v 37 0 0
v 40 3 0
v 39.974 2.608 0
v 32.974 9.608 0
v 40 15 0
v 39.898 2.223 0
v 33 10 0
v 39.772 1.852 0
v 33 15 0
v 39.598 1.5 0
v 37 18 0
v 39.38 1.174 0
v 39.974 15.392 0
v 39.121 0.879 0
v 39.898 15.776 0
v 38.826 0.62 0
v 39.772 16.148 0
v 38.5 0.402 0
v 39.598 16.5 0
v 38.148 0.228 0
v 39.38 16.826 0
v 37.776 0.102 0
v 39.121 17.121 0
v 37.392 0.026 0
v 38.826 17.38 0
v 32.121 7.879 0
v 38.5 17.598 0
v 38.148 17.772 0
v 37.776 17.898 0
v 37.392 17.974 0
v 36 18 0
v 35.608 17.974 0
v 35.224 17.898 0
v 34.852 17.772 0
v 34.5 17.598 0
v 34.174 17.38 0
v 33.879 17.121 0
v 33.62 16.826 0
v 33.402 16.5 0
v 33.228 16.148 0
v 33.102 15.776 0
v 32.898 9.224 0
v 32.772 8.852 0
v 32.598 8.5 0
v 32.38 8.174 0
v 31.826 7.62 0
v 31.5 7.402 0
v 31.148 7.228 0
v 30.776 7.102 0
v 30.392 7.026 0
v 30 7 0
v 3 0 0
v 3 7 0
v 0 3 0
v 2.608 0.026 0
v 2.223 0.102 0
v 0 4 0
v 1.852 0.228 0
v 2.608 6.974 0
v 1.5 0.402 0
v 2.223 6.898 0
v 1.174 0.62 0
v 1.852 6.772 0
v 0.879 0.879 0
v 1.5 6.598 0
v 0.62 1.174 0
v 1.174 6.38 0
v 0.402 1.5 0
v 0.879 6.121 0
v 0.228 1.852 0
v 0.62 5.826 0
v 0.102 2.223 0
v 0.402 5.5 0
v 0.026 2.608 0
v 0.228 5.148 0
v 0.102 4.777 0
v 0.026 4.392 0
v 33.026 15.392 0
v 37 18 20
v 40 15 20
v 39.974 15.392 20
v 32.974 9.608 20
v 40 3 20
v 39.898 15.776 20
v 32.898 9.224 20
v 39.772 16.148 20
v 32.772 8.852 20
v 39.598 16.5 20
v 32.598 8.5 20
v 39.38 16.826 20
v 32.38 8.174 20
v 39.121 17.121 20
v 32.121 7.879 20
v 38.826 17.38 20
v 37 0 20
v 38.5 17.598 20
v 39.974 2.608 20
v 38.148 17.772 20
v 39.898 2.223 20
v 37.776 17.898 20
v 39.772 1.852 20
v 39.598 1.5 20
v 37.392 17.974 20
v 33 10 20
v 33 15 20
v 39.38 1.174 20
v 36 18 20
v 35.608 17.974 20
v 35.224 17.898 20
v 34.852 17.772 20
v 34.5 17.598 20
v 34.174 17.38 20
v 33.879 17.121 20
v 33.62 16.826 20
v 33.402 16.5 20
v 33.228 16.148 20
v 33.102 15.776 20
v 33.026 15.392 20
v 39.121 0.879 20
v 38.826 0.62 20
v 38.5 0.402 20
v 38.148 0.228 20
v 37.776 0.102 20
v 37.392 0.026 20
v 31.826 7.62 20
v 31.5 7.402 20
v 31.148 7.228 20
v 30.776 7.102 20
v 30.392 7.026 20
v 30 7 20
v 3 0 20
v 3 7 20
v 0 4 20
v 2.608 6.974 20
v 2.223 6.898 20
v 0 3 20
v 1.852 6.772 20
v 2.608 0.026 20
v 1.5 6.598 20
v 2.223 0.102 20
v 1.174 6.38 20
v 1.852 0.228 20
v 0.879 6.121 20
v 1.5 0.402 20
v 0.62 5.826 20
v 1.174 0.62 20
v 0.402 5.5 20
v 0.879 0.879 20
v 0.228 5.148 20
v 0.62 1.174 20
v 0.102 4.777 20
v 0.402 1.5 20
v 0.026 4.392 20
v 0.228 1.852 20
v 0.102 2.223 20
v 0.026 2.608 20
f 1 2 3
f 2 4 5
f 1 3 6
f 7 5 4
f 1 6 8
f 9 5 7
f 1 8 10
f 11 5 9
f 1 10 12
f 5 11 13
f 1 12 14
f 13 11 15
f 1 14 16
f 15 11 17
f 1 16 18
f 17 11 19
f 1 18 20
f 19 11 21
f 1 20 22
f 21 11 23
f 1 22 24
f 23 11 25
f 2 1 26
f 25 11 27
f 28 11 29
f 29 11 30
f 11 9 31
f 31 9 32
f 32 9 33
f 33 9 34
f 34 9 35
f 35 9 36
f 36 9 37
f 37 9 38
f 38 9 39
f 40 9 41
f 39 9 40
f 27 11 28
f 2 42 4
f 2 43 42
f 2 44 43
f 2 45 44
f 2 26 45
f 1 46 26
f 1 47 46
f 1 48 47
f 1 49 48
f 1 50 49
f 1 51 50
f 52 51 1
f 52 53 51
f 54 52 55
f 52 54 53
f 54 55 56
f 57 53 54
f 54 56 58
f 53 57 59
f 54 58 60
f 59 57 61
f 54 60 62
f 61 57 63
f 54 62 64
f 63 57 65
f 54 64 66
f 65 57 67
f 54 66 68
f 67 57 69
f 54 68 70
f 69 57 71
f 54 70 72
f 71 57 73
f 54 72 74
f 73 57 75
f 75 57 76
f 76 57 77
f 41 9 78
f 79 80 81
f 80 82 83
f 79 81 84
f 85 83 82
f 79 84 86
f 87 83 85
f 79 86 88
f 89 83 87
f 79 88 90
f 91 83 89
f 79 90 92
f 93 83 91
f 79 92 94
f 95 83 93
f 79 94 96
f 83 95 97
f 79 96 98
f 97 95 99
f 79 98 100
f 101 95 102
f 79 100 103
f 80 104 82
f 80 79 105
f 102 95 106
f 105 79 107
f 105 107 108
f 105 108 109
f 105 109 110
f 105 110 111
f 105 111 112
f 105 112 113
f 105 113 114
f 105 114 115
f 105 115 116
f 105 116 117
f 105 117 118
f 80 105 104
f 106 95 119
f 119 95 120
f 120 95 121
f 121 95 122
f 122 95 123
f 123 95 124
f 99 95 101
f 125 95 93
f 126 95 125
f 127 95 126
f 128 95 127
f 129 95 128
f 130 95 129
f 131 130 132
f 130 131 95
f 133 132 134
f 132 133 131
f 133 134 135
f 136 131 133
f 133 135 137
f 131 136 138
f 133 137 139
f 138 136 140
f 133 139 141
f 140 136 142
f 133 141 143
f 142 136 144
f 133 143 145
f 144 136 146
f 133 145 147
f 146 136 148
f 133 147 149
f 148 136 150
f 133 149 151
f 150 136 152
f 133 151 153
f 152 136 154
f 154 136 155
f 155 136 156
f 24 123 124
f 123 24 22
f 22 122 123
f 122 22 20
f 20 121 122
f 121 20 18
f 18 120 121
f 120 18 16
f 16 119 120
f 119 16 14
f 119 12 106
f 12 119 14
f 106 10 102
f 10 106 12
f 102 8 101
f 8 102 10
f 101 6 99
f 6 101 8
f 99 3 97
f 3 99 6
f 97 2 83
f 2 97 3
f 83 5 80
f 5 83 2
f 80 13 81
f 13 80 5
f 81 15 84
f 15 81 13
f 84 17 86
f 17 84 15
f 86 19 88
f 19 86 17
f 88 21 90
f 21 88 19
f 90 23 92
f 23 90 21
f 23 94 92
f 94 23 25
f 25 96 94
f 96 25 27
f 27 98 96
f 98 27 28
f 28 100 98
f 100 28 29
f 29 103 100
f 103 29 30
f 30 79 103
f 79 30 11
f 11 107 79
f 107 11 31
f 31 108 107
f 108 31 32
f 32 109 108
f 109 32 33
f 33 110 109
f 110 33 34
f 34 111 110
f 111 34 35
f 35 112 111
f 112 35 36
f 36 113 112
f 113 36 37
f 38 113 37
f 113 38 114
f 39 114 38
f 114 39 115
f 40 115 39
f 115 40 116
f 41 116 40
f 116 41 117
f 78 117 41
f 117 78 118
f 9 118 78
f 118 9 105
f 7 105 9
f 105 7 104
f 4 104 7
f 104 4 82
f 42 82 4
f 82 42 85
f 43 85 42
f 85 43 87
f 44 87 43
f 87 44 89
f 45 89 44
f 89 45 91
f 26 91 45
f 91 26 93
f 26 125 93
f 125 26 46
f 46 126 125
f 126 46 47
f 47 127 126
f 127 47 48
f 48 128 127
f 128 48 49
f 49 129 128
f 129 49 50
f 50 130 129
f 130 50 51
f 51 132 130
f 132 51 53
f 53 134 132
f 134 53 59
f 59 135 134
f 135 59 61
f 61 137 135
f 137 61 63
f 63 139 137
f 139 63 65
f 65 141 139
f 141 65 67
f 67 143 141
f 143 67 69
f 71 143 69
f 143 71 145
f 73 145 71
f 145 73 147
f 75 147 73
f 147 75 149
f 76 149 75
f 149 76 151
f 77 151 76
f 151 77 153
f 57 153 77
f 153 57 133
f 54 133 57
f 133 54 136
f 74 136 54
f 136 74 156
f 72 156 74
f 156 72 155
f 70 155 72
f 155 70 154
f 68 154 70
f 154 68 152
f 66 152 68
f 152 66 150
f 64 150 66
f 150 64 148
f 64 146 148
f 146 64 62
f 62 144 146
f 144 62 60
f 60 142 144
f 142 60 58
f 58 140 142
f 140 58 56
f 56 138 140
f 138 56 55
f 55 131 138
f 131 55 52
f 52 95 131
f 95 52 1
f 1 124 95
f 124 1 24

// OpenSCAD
// Wall Hook — screw-mounted J hook for coats, bags, keys, towels, tools.
// Prints lying on its side (as rendered) so the layers follow the curve
// of the hook: much stronger than printing it standing up.
// Use PETG or PLA with 4+ perimeters for heavy loads.

/* [Hook] */
// Width of the hook (mm) — this is the print height
width = 20;             // [10:1:60]
// How far the hook sticks out from the wall (mm)
depth = 35;             // [15:1:100]
// Height of the front lip (mm)
lip_h = 18;             // [5:1:60]
// Thickness of the hook arm (mm)
arm_t = 7;              // [4:0.5:15]

/* [Back plate] */
// Height of the back plate (mm)
plate_h = 70;           // [40:1:150]
// Thickness of the back plate (mm)
plate_t = 5;            // [3:0.5:10]

/* [Screws] */
// Screw shank diameter (mm)
screw_d = 4;            // [2.5:0.1:6]
// Screw head diameter (mm)
head_d = 8;             // [5:0.1:12]

/* [Hidden] */
$fn = 48;
fillet = 3;
hole_lo = lip_h + head_d / 2 + 6;   // keep clear of the lip for a screwdriver
hole_hi = plate_h - head_d / 2 - 4;
assert(hole_hi - hole_lo > head_d, "plate_h too small for this lip_h — increase plate_h");

module profile() {
    // round convex corners, then fill concave ones
    offset(r = -fillet) offset(delta = fillet)
    offset(r = fillet) offset(delta = -fillet) {
        square([plate_t, plate_h]);
        square([plate_t + depth, arm_t]);
        translate([plate_t + depth - arm_t, 0]) square([arm_t, lip_h]);
    }
}

difference() {
    linear_extrude(width) profile();
    for (y = [hole_lo, hole_hi])
        translate([0, y, width / 2]) rotate([0, 90, 0]) {
            translate([0, 0, -1]) cylinder(d = screw_d, h = plate_t + 2);
            // countersink on the outside face
            translate([0, 0, plate_t - (head_d - screw_d) / 2])
                cylinder(d1 = screw_d, d2 = head_d, h = (head_d - screw_d) / 2 + 0.01);
            translate([0, 0, plate_t]) cylinder(d = head_d, h = depth);
        }
}
